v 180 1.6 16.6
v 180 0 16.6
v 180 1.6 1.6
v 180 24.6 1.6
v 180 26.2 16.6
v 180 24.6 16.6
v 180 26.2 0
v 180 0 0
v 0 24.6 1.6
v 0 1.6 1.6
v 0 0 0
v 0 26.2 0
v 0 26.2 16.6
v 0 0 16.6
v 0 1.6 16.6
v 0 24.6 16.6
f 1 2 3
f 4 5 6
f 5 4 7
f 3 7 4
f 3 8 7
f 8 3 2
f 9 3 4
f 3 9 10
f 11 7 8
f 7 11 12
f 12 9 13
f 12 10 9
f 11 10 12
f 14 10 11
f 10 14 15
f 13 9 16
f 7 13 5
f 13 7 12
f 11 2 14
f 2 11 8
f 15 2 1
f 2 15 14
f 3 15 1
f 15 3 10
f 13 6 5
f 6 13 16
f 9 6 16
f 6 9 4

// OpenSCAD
rail_lenght = 180;
rail_height = 15;
rail_width = 1.6;
rail_space = 23;
rail_base_height=1.6;

union() {
    y_size = rail_space + rail_width * 2;
    cube([rail_lenght, y_size, rail_base_height]);
    cube([rail_lenght, rail_width, rail_height + rail_base_height]);
    translate([0, y_size - rail_width, 0])
        cube([rail_lenght, rail_width, rail_height + rail_base_height]);
}
